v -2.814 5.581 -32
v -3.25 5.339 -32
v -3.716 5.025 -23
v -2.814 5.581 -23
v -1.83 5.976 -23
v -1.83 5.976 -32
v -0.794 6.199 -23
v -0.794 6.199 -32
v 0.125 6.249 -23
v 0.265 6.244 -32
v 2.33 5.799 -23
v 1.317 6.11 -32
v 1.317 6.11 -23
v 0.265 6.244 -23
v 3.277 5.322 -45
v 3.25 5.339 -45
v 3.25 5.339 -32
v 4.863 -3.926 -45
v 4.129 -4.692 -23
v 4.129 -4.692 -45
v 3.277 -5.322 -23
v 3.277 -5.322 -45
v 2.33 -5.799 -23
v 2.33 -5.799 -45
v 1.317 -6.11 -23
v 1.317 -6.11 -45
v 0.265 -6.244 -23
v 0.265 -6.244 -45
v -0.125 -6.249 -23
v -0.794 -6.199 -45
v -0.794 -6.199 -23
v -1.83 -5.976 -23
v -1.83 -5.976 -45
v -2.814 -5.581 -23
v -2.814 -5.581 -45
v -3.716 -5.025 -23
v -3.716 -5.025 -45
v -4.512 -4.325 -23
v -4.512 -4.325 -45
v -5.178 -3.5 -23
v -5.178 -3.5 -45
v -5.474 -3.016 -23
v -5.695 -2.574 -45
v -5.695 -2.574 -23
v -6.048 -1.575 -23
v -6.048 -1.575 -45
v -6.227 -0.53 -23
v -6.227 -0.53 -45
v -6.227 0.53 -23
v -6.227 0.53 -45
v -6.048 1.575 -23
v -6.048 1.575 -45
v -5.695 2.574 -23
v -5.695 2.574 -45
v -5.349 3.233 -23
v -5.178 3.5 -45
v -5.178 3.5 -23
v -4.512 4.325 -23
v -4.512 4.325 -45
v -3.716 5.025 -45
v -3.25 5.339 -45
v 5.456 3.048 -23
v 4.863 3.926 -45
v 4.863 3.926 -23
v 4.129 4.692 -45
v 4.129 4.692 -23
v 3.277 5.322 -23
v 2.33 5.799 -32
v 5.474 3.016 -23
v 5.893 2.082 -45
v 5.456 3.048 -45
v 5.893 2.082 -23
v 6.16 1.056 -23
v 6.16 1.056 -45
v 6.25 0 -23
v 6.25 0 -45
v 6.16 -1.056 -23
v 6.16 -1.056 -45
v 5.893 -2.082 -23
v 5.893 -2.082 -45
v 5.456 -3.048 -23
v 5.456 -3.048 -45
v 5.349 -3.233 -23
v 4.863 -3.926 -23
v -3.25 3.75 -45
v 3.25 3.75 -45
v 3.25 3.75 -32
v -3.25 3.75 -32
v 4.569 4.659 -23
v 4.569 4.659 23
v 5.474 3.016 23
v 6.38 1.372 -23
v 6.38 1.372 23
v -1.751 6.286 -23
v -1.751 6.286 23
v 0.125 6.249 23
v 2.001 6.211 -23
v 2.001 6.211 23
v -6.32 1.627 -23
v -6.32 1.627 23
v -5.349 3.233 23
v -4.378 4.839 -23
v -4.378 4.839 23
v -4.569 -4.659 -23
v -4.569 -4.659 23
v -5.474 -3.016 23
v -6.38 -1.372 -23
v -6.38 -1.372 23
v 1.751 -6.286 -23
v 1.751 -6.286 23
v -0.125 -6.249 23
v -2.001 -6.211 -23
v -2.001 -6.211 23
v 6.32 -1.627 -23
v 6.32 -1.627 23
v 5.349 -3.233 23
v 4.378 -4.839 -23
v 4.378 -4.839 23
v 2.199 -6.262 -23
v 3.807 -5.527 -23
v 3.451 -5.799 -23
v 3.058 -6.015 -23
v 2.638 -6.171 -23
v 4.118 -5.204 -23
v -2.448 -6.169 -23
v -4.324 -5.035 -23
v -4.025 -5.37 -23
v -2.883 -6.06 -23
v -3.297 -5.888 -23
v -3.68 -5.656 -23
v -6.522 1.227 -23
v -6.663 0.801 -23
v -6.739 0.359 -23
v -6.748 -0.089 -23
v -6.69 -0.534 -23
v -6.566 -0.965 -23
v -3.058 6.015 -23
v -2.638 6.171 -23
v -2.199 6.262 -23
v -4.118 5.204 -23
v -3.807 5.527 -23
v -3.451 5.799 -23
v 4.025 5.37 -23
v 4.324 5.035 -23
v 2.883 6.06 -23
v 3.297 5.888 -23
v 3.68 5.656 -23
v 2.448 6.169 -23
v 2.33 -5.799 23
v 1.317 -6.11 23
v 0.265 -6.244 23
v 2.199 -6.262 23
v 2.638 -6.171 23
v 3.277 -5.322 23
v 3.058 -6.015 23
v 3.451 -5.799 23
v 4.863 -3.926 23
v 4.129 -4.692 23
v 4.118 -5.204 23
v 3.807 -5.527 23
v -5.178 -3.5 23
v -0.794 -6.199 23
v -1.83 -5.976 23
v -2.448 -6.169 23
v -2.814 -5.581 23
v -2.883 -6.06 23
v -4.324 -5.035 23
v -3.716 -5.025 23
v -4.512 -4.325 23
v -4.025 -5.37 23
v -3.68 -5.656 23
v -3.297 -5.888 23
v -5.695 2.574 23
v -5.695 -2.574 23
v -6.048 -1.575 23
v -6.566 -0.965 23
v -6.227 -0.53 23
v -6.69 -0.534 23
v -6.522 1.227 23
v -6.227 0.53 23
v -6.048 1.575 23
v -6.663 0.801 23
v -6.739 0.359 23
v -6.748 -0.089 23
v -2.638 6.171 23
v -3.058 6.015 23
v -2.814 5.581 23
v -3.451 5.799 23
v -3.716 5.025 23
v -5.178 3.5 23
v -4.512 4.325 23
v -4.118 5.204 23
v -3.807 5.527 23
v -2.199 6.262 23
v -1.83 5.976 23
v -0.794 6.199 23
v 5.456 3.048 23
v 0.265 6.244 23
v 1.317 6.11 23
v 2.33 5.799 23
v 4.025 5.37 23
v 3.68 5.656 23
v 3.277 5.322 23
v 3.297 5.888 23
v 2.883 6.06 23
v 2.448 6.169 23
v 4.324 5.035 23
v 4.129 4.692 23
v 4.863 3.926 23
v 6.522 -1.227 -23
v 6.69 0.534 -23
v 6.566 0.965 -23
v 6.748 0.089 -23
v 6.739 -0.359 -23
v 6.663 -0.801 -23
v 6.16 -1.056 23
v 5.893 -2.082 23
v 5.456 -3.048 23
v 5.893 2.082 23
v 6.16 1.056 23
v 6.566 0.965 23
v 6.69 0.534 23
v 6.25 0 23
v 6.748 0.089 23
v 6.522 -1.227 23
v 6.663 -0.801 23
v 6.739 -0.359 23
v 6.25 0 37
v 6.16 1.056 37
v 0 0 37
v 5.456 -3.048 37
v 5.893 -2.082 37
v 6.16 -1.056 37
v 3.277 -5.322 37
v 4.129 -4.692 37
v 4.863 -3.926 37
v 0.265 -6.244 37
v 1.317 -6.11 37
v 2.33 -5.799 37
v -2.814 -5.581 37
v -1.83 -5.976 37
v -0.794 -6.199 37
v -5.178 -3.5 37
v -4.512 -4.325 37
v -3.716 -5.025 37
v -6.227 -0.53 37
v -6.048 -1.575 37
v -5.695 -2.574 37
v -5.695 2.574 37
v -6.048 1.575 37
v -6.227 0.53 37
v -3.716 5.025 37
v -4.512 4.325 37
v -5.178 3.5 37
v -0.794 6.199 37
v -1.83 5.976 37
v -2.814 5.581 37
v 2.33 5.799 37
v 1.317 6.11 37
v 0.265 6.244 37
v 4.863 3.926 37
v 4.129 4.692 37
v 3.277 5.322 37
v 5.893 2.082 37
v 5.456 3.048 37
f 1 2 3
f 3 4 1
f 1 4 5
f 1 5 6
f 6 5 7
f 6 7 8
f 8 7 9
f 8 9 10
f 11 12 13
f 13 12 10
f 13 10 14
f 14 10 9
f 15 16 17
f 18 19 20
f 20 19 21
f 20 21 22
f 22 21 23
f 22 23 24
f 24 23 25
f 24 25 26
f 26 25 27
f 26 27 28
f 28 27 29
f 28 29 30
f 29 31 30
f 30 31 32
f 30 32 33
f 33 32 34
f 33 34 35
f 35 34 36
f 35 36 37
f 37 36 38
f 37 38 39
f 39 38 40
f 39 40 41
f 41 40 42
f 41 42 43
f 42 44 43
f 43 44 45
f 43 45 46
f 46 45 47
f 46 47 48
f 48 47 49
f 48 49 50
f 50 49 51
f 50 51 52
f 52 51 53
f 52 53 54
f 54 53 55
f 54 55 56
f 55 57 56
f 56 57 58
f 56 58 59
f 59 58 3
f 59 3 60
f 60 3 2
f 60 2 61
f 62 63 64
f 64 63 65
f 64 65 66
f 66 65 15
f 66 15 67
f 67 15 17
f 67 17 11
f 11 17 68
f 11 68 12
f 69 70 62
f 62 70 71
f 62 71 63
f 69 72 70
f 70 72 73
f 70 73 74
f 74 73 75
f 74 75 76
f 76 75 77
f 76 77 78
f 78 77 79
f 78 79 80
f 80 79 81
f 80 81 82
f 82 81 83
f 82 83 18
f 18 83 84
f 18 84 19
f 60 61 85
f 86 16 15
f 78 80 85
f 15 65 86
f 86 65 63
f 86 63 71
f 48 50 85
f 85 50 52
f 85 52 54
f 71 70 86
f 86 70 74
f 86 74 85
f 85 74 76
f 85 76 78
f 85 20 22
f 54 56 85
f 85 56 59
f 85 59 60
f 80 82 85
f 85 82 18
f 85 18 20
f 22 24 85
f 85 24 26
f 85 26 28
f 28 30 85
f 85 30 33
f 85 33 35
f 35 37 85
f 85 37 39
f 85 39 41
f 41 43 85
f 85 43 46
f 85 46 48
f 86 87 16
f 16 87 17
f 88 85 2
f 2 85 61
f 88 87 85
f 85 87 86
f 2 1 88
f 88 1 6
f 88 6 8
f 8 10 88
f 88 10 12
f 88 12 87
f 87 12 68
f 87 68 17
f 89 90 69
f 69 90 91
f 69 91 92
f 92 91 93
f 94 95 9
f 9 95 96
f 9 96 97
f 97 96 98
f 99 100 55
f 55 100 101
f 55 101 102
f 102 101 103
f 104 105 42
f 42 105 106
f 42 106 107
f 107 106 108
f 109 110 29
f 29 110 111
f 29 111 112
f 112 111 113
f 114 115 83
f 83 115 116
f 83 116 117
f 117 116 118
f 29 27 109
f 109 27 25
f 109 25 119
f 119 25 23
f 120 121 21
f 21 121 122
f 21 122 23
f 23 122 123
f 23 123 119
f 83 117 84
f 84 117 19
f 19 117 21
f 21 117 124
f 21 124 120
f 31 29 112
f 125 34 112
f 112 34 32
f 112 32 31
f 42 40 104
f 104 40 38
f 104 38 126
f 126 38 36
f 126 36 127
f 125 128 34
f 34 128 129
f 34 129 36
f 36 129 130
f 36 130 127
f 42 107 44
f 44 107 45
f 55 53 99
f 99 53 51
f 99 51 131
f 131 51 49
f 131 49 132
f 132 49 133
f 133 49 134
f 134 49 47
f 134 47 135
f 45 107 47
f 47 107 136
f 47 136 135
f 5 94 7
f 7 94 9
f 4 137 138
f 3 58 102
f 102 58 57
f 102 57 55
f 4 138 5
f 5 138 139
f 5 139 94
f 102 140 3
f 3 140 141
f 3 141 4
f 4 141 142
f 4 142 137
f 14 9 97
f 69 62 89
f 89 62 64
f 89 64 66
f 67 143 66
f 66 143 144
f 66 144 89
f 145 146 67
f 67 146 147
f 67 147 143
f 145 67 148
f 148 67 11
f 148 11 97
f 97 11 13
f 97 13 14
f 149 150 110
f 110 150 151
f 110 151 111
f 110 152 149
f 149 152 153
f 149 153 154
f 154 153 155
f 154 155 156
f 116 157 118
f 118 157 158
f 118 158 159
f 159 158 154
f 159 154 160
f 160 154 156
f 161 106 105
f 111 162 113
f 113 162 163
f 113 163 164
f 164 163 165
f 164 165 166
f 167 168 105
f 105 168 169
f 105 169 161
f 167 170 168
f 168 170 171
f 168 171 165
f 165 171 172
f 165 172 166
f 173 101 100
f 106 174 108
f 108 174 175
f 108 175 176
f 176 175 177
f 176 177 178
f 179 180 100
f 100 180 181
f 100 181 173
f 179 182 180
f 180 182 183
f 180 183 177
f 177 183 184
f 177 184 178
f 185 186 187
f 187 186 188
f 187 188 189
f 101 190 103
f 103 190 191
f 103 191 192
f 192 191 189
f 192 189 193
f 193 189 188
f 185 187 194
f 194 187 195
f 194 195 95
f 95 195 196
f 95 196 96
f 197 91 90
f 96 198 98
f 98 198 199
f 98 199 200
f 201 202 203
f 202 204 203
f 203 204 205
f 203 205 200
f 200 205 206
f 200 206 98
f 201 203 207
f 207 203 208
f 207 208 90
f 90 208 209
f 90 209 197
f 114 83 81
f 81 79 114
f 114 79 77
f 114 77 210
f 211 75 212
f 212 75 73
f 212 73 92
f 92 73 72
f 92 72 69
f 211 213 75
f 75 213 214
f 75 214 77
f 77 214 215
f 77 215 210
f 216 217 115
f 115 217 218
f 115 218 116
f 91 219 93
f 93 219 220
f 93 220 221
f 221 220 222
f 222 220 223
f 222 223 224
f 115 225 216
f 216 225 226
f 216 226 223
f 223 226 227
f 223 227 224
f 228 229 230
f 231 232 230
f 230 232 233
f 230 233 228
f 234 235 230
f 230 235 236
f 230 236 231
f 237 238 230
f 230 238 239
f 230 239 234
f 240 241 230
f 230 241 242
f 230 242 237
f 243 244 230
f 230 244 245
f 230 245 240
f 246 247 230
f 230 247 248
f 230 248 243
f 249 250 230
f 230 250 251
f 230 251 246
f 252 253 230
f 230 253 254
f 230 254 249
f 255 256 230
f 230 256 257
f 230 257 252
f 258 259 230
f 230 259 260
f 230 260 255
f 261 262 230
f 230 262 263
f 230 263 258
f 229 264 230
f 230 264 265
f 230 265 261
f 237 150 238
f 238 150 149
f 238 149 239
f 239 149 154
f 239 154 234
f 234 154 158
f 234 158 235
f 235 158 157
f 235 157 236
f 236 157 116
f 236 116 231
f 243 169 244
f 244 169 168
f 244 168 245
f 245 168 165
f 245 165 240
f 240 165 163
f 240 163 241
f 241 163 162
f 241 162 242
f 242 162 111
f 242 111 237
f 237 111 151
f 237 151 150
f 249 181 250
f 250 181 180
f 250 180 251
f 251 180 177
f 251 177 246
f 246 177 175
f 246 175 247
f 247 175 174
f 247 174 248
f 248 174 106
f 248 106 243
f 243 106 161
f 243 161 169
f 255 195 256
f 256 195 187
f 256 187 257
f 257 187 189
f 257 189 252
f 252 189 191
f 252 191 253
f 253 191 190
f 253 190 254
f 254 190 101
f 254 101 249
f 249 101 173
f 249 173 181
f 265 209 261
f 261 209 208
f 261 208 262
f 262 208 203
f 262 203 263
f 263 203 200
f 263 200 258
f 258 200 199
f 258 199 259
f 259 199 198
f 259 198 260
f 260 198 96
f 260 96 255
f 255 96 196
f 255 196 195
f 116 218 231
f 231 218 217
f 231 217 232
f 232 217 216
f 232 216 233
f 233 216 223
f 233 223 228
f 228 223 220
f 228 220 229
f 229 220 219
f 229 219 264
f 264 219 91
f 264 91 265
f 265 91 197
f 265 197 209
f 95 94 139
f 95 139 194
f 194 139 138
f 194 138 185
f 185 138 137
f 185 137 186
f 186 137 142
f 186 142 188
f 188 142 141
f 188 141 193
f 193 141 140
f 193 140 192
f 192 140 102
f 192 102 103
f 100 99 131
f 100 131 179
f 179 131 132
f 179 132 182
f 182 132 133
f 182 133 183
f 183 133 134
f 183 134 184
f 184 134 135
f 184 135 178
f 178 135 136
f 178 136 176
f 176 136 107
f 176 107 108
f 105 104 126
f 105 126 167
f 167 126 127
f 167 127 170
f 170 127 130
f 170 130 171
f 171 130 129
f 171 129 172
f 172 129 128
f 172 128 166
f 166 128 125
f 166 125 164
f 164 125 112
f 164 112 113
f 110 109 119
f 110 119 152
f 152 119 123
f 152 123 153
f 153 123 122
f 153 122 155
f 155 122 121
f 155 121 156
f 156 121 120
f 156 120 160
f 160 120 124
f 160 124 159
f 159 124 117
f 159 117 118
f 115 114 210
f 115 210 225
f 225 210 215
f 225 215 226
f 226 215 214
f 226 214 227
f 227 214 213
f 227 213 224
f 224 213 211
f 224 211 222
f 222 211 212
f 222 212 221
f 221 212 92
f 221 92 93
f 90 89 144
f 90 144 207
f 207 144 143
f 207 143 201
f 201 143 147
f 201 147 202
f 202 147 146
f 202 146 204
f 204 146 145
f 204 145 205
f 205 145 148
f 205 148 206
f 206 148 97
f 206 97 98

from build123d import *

# Parameters (mm, degrees)
SKETCH1_R                = 6.25
BOSS_EXTRUDE1_DEPTH      = 37
BOSS_EXTRUDE1_DEPTH_BACK = 45
SKETCH4_W                = 6.5
SKETCH4_H                = 5
CUT_EXTRUDE1_DEPTH       = 13
BOSS_EXTRUDE2_DEPTH      = 46
FILLET1_R                = 3


with BuildPart() as part:
    # Sketch1 → Boss-Extrude1 (new body, two sides)
    with BuildSketch(Plane.XY) as boss_extrude1_sk:
        Circle(SKETCH1_R)
    extrude(amount=BOSS_EXTRUDE1_DEPTH)
    extrude(boss_extrude1_sk.sketch, amount=-BOSS_EXTRUDE1_DEPTH_BACK)

    # Sketch4 → Cut-Extrude1 (cut)
    with BuildSketch(Plane(origin=(0, 0, -45), x_dir=(-1, 0, 0), z_dir=(0, 0, -1))):
        with Locations((0, 6.25)):
            Rectangle(SKETCH4_W, SKETCH4_H)
    extrude(amount=-CUT_EXTRUDE1_DEPTH, mode=Mode.SUBTRACT)

    # Sketch5 → Boss-Extrude2 (add)
    with BuildSketch(Plane.XY.offset(-23)):
        Polygon((3.732897661, 6.176472163), (-3.482532969, 6.321020286), (-7.21543063, 0.144548123), (-3.732897661, -6.176472163), (3.482532969, -6.321020286), (7.21543063, -0.144548123), align=None)
    extrude(amount=BOSS_EXTRUDE2_DEPTH)

    # Fillet1
    fillet1_edges = [part.edges().sort_by_distance(p)[0] for p in [
        (7.21543063, -0.144548123, 0),
        (3.732897661, 6.176472163, 0),
        (-3.482532969, 6.321020286, 0),
        (-7.21543063, 0.144548123, 0),
        (-3.732897661, -6.176472163, 0),
        (3.482532969, -6.321020286, 0),
    ]]
    fillet(fillet1_edges, radius=FILLET1_R)


solid = part.part
